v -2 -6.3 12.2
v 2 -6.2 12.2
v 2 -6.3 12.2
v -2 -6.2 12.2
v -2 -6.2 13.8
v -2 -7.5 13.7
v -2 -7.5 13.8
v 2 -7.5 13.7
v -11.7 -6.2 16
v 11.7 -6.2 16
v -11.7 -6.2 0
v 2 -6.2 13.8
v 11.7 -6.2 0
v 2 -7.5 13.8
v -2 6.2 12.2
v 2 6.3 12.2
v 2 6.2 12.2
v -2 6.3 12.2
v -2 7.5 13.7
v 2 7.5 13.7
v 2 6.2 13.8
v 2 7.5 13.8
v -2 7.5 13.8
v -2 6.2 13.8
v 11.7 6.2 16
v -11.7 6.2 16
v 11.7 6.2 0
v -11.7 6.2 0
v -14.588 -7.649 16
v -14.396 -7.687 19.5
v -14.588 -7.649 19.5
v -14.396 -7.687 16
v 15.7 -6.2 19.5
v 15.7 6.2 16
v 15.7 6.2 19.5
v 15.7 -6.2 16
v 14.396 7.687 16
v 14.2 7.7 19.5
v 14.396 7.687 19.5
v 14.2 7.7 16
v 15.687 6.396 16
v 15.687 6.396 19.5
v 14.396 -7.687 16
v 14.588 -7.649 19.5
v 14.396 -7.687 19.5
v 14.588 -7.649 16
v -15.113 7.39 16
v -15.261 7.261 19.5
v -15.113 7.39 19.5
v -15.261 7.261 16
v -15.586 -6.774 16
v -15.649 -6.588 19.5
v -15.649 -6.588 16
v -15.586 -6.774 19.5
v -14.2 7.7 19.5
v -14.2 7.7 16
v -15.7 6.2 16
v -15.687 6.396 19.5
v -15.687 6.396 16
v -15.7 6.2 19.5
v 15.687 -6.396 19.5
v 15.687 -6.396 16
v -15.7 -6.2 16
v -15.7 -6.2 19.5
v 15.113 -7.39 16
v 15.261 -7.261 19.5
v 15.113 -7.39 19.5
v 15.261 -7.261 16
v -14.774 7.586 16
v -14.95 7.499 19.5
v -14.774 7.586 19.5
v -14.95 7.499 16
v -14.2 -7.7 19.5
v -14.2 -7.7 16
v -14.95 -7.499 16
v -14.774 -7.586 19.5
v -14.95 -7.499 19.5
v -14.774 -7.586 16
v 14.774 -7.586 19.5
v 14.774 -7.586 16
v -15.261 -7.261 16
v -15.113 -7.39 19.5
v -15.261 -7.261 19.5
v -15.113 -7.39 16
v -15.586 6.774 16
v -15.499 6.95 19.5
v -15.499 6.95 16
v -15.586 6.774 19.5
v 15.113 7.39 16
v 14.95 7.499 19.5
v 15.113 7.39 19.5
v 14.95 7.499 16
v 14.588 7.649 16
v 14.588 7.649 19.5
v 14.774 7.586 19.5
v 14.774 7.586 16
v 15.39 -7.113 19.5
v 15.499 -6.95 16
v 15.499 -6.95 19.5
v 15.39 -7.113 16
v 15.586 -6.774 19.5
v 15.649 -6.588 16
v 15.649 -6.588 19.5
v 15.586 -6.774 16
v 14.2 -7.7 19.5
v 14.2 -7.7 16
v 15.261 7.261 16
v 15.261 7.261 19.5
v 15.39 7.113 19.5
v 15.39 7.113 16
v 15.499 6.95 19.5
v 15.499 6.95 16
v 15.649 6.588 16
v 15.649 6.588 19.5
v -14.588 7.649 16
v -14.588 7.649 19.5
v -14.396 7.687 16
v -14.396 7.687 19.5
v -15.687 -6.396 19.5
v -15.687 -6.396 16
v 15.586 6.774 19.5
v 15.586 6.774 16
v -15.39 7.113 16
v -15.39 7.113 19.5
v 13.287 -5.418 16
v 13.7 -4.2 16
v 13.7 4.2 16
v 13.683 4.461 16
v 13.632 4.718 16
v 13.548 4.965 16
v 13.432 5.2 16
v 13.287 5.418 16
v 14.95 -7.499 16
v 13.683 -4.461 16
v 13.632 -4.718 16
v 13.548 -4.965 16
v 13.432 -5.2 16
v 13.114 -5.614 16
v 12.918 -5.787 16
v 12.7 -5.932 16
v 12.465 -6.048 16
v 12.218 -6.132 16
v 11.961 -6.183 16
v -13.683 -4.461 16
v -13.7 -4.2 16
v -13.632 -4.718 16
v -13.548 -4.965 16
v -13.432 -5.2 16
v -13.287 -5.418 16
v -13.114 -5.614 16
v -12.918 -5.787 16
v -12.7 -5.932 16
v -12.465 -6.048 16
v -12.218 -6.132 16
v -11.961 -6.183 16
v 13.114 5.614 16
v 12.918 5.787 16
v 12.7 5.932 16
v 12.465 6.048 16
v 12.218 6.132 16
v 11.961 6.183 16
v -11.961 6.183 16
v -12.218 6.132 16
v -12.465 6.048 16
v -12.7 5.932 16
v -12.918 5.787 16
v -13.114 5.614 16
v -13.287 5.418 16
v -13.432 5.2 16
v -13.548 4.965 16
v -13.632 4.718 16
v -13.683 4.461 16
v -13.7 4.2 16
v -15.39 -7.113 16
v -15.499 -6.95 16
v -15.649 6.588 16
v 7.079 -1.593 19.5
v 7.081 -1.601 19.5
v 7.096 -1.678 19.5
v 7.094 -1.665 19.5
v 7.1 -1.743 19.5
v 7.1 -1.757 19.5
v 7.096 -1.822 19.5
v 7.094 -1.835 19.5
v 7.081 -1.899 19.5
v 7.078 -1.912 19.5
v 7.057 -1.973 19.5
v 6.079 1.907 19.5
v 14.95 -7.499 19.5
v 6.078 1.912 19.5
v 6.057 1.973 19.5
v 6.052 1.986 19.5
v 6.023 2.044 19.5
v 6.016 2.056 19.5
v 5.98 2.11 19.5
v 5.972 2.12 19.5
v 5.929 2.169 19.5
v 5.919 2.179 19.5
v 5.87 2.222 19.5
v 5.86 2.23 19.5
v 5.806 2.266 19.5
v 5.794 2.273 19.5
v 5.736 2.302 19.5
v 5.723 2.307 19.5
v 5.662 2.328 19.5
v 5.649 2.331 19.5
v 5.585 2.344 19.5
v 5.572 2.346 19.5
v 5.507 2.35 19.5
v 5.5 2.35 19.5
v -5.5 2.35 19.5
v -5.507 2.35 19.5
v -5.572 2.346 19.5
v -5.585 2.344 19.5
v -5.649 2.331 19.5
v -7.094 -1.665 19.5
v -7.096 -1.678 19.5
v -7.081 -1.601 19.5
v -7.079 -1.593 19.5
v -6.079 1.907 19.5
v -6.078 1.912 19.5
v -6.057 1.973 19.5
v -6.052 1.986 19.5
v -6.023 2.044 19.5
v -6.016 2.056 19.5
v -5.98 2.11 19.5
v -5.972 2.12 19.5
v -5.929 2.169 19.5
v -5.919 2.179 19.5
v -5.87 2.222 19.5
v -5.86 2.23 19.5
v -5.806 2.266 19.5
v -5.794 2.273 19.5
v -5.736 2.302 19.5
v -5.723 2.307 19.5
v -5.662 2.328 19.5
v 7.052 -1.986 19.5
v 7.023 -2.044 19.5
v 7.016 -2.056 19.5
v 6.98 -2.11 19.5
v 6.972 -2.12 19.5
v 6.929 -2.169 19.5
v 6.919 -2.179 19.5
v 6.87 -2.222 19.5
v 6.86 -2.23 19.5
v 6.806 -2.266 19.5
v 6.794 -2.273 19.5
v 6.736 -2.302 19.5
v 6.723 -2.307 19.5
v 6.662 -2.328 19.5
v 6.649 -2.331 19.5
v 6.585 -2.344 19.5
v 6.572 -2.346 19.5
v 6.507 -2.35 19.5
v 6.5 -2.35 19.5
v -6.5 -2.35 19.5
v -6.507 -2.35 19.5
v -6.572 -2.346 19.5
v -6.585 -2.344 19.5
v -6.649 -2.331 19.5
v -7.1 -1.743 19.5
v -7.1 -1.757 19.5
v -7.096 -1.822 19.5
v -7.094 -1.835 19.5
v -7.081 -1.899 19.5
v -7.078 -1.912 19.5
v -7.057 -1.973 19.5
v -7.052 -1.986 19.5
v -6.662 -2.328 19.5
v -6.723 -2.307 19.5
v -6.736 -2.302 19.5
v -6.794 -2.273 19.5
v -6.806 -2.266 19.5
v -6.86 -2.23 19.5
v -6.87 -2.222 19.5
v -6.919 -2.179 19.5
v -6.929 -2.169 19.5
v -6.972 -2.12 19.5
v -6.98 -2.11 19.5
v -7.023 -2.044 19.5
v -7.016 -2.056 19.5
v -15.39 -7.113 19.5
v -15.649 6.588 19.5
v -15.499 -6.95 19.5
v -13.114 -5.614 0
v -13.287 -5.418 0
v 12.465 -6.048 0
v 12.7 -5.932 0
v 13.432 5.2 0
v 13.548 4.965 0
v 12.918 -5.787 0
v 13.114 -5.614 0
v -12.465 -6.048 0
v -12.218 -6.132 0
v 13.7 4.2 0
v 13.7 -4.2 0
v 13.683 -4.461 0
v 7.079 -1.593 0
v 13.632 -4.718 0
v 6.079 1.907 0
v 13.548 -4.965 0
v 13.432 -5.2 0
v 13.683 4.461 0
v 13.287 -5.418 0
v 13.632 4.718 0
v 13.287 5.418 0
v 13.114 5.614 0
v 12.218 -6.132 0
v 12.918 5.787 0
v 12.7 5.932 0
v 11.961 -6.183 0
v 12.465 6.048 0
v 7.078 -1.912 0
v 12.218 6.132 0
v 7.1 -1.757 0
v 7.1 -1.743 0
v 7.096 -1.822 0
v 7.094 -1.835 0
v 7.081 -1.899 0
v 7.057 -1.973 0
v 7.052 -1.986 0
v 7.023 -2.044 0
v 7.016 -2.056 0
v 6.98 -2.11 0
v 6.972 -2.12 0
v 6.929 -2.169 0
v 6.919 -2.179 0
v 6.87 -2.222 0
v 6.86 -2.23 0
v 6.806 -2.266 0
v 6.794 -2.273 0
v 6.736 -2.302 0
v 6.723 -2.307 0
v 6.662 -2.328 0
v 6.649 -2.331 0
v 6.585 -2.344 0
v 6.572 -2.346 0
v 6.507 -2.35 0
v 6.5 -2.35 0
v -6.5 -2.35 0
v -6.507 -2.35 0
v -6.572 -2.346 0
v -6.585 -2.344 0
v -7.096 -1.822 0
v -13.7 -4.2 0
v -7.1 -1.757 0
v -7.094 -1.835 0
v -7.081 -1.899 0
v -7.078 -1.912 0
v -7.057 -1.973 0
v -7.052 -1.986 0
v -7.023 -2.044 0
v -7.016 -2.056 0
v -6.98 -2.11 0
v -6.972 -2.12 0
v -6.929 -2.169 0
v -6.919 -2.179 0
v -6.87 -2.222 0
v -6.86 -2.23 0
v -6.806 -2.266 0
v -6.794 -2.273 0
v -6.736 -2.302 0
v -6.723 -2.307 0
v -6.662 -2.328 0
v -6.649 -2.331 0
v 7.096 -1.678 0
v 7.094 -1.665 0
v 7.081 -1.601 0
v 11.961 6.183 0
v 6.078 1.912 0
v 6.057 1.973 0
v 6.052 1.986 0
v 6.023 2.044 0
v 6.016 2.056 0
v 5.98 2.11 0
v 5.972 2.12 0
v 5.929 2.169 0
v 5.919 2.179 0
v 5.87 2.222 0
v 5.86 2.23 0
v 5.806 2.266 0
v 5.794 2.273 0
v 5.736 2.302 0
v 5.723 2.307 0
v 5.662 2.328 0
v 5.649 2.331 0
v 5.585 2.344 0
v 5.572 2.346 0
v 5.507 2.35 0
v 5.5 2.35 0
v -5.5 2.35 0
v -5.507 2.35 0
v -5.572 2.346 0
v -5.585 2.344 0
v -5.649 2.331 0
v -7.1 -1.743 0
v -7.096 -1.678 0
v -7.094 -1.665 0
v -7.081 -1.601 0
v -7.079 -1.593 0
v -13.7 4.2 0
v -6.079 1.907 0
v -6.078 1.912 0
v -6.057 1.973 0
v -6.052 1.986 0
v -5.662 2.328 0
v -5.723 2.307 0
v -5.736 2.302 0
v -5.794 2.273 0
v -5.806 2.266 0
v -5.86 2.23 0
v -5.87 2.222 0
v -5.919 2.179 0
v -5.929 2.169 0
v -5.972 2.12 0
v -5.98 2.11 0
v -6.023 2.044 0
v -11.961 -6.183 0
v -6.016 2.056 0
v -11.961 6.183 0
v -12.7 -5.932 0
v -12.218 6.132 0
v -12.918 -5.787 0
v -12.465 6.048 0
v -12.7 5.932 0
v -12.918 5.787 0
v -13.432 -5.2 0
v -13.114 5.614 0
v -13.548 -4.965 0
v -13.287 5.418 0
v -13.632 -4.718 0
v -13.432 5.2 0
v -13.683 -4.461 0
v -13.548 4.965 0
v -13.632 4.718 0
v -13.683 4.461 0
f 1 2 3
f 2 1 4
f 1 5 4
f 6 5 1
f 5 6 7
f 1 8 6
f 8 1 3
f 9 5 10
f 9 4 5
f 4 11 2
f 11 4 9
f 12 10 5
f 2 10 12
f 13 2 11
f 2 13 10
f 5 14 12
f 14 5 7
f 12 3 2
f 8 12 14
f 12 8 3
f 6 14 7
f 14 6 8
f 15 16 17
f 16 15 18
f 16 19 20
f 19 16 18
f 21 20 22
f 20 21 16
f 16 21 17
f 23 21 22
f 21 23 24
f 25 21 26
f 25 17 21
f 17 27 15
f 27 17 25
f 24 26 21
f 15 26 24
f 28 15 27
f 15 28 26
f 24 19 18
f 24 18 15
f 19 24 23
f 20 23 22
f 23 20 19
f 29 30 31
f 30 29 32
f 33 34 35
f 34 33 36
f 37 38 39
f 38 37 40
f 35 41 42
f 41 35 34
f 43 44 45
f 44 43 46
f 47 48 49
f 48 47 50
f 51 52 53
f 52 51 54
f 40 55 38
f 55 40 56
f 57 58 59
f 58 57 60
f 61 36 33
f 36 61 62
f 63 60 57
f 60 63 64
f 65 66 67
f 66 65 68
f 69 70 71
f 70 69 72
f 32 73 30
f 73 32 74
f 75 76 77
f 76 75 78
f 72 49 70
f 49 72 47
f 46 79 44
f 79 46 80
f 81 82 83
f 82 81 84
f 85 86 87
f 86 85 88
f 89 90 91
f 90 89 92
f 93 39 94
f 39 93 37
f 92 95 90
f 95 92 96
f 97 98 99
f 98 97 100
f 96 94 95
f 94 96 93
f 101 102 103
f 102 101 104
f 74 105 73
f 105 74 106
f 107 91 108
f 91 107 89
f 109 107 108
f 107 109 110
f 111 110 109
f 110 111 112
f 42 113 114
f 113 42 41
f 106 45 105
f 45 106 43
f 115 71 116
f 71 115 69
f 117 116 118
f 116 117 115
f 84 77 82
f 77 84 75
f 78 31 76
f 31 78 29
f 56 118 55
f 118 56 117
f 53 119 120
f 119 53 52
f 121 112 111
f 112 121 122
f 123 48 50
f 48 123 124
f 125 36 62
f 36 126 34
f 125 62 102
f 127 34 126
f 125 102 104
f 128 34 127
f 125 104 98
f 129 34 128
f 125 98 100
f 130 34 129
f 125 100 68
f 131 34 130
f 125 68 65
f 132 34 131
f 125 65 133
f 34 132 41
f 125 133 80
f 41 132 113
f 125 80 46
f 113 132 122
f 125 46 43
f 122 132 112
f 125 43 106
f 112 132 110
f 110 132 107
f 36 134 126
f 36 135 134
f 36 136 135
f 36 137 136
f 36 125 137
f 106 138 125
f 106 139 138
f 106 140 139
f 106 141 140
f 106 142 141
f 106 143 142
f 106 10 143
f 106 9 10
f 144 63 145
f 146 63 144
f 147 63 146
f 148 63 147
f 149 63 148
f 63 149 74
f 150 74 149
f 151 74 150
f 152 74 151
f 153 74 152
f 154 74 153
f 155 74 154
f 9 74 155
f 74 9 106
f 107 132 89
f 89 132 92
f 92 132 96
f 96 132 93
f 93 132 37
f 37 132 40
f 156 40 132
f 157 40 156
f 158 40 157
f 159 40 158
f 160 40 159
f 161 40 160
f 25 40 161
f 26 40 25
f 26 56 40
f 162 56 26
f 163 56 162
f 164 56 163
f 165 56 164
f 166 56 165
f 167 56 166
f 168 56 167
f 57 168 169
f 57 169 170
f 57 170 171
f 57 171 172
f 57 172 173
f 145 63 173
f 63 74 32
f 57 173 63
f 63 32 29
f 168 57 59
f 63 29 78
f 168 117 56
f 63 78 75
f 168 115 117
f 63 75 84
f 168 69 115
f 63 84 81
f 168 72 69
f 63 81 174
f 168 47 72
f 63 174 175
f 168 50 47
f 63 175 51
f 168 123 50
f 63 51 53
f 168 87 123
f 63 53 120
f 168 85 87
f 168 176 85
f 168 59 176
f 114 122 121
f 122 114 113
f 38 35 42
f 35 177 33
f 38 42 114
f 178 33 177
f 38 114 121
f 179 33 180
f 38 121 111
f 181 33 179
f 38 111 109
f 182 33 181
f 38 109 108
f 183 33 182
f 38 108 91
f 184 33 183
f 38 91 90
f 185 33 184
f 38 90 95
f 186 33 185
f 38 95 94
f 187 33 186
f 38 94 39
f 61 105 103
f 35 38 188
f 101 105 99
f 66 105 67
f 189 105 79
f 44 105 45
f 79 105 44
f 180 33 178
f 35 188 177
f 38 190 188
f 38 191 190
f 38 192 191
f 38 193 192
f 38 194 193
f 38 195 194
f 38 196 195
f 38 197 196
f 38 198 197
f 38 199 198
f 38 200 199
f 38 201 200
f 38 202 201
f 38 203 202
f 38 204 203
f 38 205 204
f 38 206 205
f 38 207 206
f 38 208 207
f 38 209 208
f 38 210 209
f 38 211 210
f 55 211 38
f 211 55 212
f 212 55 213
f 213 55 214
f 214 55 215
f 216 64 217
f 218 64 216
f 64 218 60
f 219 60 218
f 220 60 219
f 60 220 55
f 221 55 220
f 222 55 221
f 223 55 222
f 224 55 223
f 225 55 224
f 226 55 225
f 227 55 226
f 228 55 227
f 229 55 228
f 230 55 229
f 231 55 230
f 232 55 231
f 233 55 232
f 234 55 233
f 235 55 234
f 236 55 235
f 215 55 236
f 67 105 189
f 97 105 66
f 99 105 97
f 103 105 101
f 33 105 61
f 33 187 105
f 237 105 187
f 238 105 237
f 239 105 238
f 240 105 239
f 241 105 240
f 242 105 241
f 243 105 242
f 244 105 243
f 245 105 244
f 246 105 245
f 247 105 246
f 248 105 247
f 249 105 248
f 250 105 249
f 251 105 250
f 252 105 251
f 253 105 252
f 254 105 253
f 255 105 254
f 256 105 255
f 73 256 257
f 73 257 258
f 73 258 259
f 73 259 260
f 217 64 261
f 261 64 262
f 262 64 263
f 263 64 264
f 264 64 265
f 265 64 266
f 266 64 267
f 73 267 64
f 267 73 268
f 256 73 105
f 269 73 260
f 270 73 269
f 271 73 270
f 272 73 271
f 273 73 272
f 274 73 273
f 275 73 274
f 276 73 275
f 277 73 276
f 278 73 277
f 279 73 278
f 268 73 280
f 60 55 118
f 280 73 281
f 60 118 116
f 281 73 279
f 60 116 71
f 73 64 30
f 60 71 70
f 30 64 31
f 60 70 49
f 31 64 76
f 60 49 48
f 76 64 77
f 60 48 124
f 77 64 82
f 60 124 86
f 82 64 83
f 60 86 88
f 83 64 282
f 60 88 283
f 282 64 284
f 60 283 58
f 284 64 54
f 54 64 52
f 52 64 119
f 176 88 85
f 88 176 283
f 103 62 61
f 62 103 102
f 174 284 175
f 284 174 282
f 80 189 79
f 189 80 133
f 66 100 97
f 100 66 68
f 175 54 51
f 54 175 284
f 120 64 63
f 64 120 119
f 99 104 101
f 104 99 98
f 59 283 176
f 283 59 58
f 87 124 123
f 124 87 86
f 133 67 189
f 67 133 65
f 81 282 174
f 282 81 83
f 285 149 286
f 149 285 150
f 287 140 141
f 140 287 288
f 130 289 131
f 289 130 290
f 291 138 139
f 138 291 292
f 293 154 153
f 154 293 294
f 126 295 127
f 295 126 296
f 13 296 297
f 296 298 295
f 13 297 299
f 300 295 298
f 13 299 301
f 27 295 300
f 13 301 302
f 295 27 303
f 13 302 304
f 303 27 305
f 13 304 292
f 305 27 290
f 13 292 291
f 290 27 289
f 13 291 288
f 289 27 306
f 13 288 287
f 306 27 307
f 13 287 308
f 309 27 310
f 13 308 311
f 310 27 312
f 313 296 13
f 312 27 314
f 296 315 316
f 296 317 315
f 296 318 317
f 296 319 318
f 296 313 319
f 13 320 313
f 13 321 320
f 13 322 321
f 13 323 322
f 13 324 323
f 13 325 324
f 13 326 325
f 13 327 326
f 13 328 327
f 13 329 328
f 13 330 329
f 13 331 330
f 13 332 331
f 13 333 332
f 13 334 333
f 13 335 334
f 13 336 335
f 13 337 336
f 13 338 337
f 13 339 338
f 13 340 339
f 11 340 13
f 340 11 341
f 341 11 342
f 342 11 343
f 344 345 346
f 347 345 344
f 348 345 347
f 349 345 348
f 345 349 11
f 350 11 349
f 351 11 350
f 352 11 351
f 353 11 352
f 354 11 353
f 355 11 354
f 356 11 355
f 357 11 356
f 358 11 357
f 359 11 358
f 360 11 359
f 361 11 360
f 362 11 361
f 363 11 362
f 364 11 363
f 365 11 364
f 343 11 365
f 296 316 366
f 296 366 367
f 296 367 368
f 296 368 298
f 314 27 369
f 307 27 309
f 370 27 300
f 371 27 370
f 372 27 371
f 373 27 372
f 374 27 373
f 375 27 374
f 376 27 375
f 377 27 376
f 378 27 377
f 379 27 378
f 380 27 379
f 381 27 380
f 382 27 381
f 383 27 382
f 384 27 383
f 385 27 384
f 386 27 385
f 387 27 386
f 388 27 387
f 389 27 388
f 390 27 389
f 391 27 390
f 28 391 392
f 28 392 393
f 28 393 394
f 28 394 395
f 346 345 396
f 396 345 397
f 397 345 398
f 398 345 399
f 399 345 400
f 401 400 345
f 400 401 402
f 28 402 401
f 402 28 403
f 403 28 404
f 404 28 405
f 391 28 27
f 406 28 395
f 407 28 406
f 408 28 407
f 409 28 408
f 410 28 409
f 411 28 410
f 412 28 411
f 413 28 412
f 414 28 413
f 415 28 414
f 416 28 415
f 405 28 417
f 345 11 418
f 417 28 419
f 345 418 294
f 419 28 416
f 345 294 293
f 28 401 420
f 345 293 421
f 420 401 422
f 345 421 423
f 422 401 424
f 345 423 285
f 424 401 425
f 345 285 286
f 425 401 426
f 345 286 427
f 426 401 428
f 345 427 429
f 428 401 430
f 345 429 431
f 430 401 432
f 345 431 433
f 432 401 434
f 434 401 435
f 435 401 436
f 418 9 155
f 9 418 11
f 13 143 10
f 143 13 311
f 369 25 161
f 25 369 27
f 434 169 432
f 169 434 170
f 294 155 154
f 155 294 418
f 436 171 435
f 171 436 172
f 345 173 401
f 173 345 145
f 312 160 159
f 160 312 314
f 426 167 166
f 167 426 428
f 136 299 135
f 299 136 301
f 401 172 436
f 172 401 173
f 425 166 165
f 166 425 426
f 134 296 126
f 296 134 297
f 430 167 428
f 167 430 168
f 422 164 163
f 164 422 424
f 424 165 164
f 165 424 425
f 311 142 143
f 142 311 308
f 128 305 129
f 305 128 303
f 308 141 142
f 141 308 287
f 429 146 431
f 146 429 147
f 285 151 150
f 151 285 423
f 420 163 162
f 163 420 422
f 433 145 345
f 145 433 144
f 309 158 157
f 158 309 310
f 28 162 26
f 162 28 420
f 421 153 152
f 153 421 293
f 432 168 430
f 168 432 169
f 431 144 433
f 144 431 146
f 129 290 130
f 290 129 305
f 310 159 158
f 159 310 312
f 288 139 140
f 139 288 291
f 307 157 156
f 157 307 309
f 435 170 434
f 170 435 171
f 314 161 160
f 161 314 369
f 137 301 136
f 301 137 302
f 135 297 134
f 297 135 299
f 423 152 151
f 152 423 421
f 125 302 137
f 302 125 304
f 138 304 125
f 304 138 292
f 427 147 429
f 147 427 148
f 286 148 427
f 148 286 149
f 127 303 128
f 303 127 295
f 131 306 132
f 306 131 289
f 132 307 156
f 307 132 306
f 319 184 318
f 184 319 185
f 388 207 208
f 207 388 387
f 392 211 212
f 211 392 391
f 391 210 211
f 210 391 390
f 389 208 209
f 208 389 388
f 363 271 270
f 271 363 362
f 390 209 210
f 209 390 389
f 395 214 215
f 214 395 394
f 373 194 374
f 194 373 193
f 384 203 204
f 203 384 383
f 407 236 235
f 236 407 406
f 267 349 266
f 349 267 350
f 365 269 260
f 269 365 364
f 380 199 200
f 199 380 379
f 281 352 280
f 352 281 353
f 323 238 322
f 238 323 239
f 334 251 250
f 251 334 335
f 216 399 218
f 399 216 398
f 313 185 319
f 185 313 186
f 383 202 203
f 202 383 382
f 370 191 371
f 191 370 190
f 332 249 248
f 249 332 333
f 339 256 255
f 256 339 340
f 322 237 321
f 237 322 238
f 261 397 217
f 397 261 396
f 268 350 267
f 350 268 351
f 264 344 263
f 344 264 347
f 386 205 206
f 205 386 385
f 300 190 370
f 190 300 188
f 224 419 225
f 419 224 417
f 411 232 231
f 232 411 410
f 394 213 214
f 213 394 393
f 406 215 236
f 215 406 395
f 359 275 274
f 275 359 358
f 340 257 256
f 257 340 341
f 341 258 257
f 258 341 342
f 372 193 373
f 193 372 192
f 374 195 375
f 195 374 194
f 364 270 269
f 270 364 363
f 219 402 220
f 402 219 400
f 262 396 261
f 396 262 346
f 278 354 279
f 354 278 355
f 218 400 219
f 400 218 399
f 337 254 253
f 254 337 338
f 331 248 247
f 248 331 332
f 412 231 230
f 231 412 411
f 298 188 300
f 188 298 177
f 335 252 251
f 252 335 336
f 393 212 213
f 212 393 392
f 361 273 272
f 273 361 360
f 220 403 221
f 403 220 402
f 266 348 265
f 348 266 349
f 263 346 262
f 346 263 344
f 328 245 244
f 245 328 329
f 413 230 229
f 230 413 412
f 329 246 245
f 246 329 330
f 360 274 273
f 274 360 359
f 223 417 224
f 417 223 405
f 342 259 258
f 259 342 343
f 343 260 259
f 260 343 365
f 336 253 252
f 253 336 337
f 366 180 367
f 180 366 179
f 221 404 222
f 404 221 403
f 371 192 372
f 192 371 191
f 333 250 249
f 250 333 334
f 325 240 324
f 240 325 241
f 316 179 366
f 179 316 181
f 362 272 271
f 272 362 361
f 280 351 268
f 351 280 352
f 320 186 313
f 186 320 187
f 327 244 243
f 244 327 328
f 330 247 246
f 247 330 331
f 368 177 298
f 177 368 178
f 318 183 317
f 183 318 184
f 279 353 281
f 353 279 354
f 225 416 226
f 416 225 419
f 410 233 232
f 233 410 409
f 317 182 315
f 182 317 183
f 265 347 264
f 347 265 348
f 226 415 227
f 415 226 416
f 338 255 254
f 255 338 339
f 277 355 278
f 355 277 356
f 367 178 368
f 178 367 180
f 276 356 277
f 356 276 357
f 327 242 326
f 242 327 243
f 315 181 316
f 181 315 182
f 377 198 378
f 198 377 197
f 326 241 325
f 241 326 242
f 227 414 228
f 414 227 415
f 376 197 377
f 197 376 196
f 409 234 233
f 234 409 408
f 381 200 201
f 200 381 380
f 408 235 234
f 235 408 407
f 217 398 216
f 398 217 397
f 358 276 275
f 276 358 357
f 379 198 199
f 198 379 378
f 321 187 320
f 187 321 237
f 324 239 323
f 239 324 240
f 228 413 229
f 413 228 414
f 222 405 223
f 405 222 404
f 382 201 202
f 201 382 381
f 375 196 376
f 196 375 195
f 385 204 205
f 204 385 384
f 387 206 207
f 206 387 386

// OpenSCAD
// file: insert_base.scad
// ============================================
// MODULAR CABLE ORGANIZER - BASE INSERT MODULE
// ============================================
// This is the parent module for all insert types
// Include this file and call insert_with_port() with a port shape
// ============================================

include <parameters.scad>

// === BASE INSERT WITH CUSTOM BODY DEPTH ===
module insert_blank_custom(body_depth) {
    union() {
        // Base plate (sits in frame slot)
        rounded_box_rect(insert_width, insert_height, insert_base_depth, 1.5);
        
        // Body (protrudes out front) - custom depth
        translate([0, 0, insert_base_depth])
            rounded_box_rect(insert_body_width, insert_body_height, body_depth, 2);
        
        // Snap tabs on all 4 sides
        snap_tabs_all();
    }
}

// === BASE INSERT (default depth - for backwards compatibility) ===
module insert_blank() {
    insert_blank_custom(insert_body_depth);
}

// === INSERT WITH THROUGH-HOLE PORT (custom depth) ===
// Pass body_depth and a 2D shape as children
module insert_with_port_custom(body_depth) {
    total_depth = insert_base_depth + body_depth;
    difference() {
        insert_blank_custom(body_depth);
        
        // Cut port hole ALL THE WAY through (tube shape)
        translate([0, 0, -0.1])
            linear_extrude(total_depth + 0.2)
            offset(r=port_clearance)  // Add clearance to port opening
            children();
    }
}

// === INSERT WITH THROUGH-HOLE PORT (default depth) ===
module insert_with_port() {
    insert_with_port_custom(insert_body_depth) children();
}

// === PRE-MADE INSERT MODULES WITH CORRECT DEPTHS ===
module insert_usbc() {
    insert_with_port_custom(usbc_body_depth) port_usbc();
}

module insert_usba() {
    insert_with_port_custom(usba_body_depth) port_usba();
}

module insert_usb_mini() {
    insert_with_port_custom(usb_mini_body_depth) port_usb_mini();
}

module insert_usb_micro() {
    insert_with_port_custom(usb_micro_body_depth) port_usb_micro();
}

module insert_usb_b() {
    insert_with_port_custom(usb_b_body_depth) port_usb_b();
}

module insert_lightning() {
    insert_with_port_custom(lightning_body_depth) port_lightning();
}

module insert_hdmi() {
    insert_with_port_custom(hdmi_body_depth) port_hdmi();
}

module insert_audio_jack() {
    insert_with_port_custom(audio_jack_body_depth) port_audio_jack();
}

// === SNAP TABS (on neck/body - catch on frame cutouts) ===
// Tabs are on the body, positioned to engage with frame wall cutouts
module snap_tabs_all() {
    // Position tabs up on body (clear of base/frame)
    tab_z = insert_base_depth + snap_tab_offset;
    
    // Tabs on all 4 sides of the body
    for (angle = [0, 90, 180, 270]) {
        rotate([0, 0, angle])
            translate([0, insert_body_height/2, tab_z])
            neck_snap_tab();
    }
}

module neck_snap_tab() {
    // Wedge shape (FLIPPED): 
    // - Peak/taper on BOTTOM - slides past back plate when inserting
    // - Flat on TOP - catches and holds
    hull() {
        // Peak of wedge (protruding, at BOTTOM of tab)
        translate([-snap_tab_width/2, snap_tab_protrude, 0])
            cube([snap_tab_width, 0.1, 0.1]);
        // Flat top (at body surface, TOP of tab)
        translate([-snap_tab_width/2, 0, snap_tab_thick])
            cube([snap_tab_width, 0.1, 0.1]);
        // Base of wedge (at body surface, bottom)
        translate([-snap_tab_width/2, 0, 0])
            cube([snap_tab_width, 0.1, 0.1]);
    }
}

module snap_tab_horizontal() {
    hull() {
        translate([0, -snap_tab_protrude/2, 0])
            cube([snap_tab_width, 0.1, snap_tab_thick], center=true);
        translate([0, snap_tab_protrude/2, snap_tab_thick * 0.2])
            cube([snap_tab_width, 0.1, snap_tab_thick * 0.6], center=true);
    }
}

module snap_tab_vertical() {
    hull() {
        translate([-snap_tab_protrude/2, 0, 0])
            cube([0.1, snap_tab_width, snap_tab_thick], center=true);
        translate([snap_tab_protrude/2, 0, snap_tab_thick * 0.2])
            cube([0.1, snap_tab_width, snap_tab_thick * 0.6], center=true);
    }
}

// === UTILITY MODULES ===
module rounded_box_rect(w, d, h, r) {
    translate([0, 0, h/2])
        hull() {
            for (x = [-1, 1], y = [-1, 1])
                translate([x * (w/2 - r), y * (d/2 - r), 0])
                    cylinder(h=h, r=r, center=true);
        }
}

// === PORT SHAPE MODULES (2D) ===
// These define the cutout shapes for each connector type

module port_rounded_rect(w, h, r) {
    // Standard rounded rectangle
    hull() {
        for (x = [-1, 1], y = [-1, 1])
            translate([x * (w/2 - r), y * (h/2 - r)])
                circle(r=r);
    }
}

module port_usbc() {
    port_rounded_rect(usbc_w, usbc_h, usbc_r);
}

module port_usba() {
    port_rounded_rect(usba_w, usba_h, usba_r);
}

module port_usb_mini() {
    port_rounded_rect(usb_mini_w, usb_mini_h, usb_mini_r);
}

module port_usb_micro() {
    port_rounded_rect(usb_micro_w, usb_micro_h, usb_micro_r);
}

module port_usb_b() {
    // USB-B has beveled top corners
    hull() {
        // Bottom corners (full radius)
        for (x = [-1, 1])
            translate([x * (usb_b_w/2 - usb_b_r), -(usb_b_h/2 - usb_b_r)])
                circle(r=usb_b_r);
        // Top corners (chamfered - moved inward)
        for (x = [-1, 1])
            translate([x * (usb_b_w/2 - usb_b_r - 1), (usb_b_h/2 - usb_b_r)])
                circle(r=usb_b_r);
    }
}

module port_lightning() {
    port_rounded_rect(lightning_w, lightning_h, lightning_r);
}

module port_hdmi() {
    // HDMI is tapered (wider at top)
    hull() {
        // Top (wider)
        for (x = [-1, 1])
            translate([x * (hdmi_w/2 - hdmi_r), (hdmi_h/2 - hdmi_r)])
                circle(r=hdmi_r);
        // Bottom (narrower)
        for (x = [-1, 1])
            translate([x * (hdmi_w/2 - hdmi_r - 1), -(hdmi_h/2 - hdmi_r)])
                circle(r=hdmi_r);
    }
}

module port_audio_jack() {
    circle(d=audio_jack_dia);
}

module port_label_recess() {
    // Shallow rectangular recess for labels
    square([label_w, label_h], center=true);
}

// === RENDER (for testing this file directly) ===
// insert_blank();
// file: parameters.scad
// ============================================
// MODULAR CABLE ORGANIZER - SHARED PARAMETERS
// ============================================
// All dimensions in mm - include this in all files
// ============================================

$fn = 48;

// === TOLERANCES ===
clearance = 0.3;
port_clearance = 0.1;  // Extra clearance for port openings (reduced - 0.2 was too loose for USB-C)
wall = 1.6;

// === SLOT DIMENSIONS (2:1 aspect ratio) - scaled to 2/3 ===
slot_width = 32;  // Reduced by 1mm for more compact insert
slot_height = 16;  // Reduced by 1mm for more compact insert
slot_depth = 4;  // Reduced from 6mm - less frame depth needed

// === FRAME STRUCTURE ===
frame_wall = 0.5;   // Reduced for more compact frame
frame_border = 8;  // Increased by 10mm for mounting holes with countersink
frame_back = 2;     // Slightly thicker for snap catch strength
mount_hole_dia = 3;
countersink_dia = 6;  // Diameter of countersink for screw heads
countersink_depth = 2;  // Depth of countersink

// === GRID ===
grid_cols = 2;
grid_rows = 2;

// === INSERT BASE DIMENSIONS ===
insert_width = slot_width - (2 * clearance);
insert_height = slot_height - (2 * clearance);
insert_base_depth = slot_depth - 0.5;

// === INSERT BODY (protrudes from frame) ===
insert_body_width = insert_width - 4;
insert_body_height = insert_height - 3;
insert_body_depth = 12;  // Deep enough to accommodate male cable connectors
insert_top_thick = 1.5;  // Top platform thickness

// === SNAP TABS (on neck/body - catch on back plate) ===
snap_tab_width = 4;
snap_tab_protrude = 1.2;  // How far tab sticks out from body
snap_tab_thick = 1.5;     // Z thickness of tab
snap_tab_offset = 2.2;      // Distance from base to tab bottom on insert (increased to clear frame)

// === CONNECTOR PORT DIMENSIONS & BODY DEPTHS ===
// Port dimensions from reference blueprints
// Body depths sized to match typical male connector lengths

// USB-C: 8.4 x 2.6mm, male connector ~9mm
usbc_w = 8.4;
usbc_h = 2.6;
usbc_r = 1.0;
usbc_body_depth = 9;

// USB-A: 14.0 x 6.5mm, male connector ~13mm
usba_w = 14.0;
usba_h = 6.5;
usba_r = 0.5;
usba_body_depth = 13;

// USB Mini: 6.9 x 3.0mm, male connector ~9mm
usb_mini_w = 6.9;
usb_mini_h = 3.0;
usb_mini_r = 0.5;
usb_mini_body_depth = 9;

// USB Micro: 6.9 x 1.8mm, male connector ~7mm
usb_micro_w = 6.9;
usb_micro_h = 1.8;
usb_micro_r = 0.3;
usb_micro_body_depth = 7;

// USB-B: 8.0 x 7.5mm, male connector ~14mm
usb_b_w = 8.0;
usb_b_h = 7.5;
usb_b_r = 1.0;
usb_b_body_depth = 14;

// Lightning: 6.7 x 1.5mm, male connector ~8mm
lightning_w = 6.7;
lightning_h = 1.5;
lightning_r = 0.5;
lightning_body_depth = 8;

// HDMI: 14.0 x 4.5mm, male connector ~16mm
hdmi_w = 14.0;
hdmi_h = 4.5;
hdmi_r = 0.5;
hdmi_body_depth = 16;

// 3.5mm Audio Jack: male plug ~14mm
audio_jack_dia = 6.0;
audio_jack_body_depth = 14;

// Blank/Label: recessed area for label
label_w = 30;
label_h = 12;
label_depth = 0.8;

// === CALCULATED VALUES ===
frame_total_depth = frame_back + slot_depth;
grid_width = (grid_cols * slot_width) + ((grid_cols - 1) * frame_wall);
grid_height = (grid_rows * slot_height) + ((grid_rows - 1) * frame_wall);
frame_width = grid_width + (2 * frame_border);
frame_height_total = grid_height + (2 * frame_border);
insert_total_depth = insert_base_depth + insert_body_depth;
// main file
// ============================================
// PRINT FILE: HDMI Insert
// ============================================
// Body depth: 16mm (matches HDMI male connector)
// Print with port side DOWN (flat on bed)
// No supports needed - through-hole design
// ============================================

include <parameters.scad>
include <insert_base.scad>

// HDMI insert - oriented for printing (port side down)
total_depth = insert_base_depth + hdmi_body_depth;

rotate([180, 0, 0])
translate([0, 0, -total_depth])
    insert_hdmi();
